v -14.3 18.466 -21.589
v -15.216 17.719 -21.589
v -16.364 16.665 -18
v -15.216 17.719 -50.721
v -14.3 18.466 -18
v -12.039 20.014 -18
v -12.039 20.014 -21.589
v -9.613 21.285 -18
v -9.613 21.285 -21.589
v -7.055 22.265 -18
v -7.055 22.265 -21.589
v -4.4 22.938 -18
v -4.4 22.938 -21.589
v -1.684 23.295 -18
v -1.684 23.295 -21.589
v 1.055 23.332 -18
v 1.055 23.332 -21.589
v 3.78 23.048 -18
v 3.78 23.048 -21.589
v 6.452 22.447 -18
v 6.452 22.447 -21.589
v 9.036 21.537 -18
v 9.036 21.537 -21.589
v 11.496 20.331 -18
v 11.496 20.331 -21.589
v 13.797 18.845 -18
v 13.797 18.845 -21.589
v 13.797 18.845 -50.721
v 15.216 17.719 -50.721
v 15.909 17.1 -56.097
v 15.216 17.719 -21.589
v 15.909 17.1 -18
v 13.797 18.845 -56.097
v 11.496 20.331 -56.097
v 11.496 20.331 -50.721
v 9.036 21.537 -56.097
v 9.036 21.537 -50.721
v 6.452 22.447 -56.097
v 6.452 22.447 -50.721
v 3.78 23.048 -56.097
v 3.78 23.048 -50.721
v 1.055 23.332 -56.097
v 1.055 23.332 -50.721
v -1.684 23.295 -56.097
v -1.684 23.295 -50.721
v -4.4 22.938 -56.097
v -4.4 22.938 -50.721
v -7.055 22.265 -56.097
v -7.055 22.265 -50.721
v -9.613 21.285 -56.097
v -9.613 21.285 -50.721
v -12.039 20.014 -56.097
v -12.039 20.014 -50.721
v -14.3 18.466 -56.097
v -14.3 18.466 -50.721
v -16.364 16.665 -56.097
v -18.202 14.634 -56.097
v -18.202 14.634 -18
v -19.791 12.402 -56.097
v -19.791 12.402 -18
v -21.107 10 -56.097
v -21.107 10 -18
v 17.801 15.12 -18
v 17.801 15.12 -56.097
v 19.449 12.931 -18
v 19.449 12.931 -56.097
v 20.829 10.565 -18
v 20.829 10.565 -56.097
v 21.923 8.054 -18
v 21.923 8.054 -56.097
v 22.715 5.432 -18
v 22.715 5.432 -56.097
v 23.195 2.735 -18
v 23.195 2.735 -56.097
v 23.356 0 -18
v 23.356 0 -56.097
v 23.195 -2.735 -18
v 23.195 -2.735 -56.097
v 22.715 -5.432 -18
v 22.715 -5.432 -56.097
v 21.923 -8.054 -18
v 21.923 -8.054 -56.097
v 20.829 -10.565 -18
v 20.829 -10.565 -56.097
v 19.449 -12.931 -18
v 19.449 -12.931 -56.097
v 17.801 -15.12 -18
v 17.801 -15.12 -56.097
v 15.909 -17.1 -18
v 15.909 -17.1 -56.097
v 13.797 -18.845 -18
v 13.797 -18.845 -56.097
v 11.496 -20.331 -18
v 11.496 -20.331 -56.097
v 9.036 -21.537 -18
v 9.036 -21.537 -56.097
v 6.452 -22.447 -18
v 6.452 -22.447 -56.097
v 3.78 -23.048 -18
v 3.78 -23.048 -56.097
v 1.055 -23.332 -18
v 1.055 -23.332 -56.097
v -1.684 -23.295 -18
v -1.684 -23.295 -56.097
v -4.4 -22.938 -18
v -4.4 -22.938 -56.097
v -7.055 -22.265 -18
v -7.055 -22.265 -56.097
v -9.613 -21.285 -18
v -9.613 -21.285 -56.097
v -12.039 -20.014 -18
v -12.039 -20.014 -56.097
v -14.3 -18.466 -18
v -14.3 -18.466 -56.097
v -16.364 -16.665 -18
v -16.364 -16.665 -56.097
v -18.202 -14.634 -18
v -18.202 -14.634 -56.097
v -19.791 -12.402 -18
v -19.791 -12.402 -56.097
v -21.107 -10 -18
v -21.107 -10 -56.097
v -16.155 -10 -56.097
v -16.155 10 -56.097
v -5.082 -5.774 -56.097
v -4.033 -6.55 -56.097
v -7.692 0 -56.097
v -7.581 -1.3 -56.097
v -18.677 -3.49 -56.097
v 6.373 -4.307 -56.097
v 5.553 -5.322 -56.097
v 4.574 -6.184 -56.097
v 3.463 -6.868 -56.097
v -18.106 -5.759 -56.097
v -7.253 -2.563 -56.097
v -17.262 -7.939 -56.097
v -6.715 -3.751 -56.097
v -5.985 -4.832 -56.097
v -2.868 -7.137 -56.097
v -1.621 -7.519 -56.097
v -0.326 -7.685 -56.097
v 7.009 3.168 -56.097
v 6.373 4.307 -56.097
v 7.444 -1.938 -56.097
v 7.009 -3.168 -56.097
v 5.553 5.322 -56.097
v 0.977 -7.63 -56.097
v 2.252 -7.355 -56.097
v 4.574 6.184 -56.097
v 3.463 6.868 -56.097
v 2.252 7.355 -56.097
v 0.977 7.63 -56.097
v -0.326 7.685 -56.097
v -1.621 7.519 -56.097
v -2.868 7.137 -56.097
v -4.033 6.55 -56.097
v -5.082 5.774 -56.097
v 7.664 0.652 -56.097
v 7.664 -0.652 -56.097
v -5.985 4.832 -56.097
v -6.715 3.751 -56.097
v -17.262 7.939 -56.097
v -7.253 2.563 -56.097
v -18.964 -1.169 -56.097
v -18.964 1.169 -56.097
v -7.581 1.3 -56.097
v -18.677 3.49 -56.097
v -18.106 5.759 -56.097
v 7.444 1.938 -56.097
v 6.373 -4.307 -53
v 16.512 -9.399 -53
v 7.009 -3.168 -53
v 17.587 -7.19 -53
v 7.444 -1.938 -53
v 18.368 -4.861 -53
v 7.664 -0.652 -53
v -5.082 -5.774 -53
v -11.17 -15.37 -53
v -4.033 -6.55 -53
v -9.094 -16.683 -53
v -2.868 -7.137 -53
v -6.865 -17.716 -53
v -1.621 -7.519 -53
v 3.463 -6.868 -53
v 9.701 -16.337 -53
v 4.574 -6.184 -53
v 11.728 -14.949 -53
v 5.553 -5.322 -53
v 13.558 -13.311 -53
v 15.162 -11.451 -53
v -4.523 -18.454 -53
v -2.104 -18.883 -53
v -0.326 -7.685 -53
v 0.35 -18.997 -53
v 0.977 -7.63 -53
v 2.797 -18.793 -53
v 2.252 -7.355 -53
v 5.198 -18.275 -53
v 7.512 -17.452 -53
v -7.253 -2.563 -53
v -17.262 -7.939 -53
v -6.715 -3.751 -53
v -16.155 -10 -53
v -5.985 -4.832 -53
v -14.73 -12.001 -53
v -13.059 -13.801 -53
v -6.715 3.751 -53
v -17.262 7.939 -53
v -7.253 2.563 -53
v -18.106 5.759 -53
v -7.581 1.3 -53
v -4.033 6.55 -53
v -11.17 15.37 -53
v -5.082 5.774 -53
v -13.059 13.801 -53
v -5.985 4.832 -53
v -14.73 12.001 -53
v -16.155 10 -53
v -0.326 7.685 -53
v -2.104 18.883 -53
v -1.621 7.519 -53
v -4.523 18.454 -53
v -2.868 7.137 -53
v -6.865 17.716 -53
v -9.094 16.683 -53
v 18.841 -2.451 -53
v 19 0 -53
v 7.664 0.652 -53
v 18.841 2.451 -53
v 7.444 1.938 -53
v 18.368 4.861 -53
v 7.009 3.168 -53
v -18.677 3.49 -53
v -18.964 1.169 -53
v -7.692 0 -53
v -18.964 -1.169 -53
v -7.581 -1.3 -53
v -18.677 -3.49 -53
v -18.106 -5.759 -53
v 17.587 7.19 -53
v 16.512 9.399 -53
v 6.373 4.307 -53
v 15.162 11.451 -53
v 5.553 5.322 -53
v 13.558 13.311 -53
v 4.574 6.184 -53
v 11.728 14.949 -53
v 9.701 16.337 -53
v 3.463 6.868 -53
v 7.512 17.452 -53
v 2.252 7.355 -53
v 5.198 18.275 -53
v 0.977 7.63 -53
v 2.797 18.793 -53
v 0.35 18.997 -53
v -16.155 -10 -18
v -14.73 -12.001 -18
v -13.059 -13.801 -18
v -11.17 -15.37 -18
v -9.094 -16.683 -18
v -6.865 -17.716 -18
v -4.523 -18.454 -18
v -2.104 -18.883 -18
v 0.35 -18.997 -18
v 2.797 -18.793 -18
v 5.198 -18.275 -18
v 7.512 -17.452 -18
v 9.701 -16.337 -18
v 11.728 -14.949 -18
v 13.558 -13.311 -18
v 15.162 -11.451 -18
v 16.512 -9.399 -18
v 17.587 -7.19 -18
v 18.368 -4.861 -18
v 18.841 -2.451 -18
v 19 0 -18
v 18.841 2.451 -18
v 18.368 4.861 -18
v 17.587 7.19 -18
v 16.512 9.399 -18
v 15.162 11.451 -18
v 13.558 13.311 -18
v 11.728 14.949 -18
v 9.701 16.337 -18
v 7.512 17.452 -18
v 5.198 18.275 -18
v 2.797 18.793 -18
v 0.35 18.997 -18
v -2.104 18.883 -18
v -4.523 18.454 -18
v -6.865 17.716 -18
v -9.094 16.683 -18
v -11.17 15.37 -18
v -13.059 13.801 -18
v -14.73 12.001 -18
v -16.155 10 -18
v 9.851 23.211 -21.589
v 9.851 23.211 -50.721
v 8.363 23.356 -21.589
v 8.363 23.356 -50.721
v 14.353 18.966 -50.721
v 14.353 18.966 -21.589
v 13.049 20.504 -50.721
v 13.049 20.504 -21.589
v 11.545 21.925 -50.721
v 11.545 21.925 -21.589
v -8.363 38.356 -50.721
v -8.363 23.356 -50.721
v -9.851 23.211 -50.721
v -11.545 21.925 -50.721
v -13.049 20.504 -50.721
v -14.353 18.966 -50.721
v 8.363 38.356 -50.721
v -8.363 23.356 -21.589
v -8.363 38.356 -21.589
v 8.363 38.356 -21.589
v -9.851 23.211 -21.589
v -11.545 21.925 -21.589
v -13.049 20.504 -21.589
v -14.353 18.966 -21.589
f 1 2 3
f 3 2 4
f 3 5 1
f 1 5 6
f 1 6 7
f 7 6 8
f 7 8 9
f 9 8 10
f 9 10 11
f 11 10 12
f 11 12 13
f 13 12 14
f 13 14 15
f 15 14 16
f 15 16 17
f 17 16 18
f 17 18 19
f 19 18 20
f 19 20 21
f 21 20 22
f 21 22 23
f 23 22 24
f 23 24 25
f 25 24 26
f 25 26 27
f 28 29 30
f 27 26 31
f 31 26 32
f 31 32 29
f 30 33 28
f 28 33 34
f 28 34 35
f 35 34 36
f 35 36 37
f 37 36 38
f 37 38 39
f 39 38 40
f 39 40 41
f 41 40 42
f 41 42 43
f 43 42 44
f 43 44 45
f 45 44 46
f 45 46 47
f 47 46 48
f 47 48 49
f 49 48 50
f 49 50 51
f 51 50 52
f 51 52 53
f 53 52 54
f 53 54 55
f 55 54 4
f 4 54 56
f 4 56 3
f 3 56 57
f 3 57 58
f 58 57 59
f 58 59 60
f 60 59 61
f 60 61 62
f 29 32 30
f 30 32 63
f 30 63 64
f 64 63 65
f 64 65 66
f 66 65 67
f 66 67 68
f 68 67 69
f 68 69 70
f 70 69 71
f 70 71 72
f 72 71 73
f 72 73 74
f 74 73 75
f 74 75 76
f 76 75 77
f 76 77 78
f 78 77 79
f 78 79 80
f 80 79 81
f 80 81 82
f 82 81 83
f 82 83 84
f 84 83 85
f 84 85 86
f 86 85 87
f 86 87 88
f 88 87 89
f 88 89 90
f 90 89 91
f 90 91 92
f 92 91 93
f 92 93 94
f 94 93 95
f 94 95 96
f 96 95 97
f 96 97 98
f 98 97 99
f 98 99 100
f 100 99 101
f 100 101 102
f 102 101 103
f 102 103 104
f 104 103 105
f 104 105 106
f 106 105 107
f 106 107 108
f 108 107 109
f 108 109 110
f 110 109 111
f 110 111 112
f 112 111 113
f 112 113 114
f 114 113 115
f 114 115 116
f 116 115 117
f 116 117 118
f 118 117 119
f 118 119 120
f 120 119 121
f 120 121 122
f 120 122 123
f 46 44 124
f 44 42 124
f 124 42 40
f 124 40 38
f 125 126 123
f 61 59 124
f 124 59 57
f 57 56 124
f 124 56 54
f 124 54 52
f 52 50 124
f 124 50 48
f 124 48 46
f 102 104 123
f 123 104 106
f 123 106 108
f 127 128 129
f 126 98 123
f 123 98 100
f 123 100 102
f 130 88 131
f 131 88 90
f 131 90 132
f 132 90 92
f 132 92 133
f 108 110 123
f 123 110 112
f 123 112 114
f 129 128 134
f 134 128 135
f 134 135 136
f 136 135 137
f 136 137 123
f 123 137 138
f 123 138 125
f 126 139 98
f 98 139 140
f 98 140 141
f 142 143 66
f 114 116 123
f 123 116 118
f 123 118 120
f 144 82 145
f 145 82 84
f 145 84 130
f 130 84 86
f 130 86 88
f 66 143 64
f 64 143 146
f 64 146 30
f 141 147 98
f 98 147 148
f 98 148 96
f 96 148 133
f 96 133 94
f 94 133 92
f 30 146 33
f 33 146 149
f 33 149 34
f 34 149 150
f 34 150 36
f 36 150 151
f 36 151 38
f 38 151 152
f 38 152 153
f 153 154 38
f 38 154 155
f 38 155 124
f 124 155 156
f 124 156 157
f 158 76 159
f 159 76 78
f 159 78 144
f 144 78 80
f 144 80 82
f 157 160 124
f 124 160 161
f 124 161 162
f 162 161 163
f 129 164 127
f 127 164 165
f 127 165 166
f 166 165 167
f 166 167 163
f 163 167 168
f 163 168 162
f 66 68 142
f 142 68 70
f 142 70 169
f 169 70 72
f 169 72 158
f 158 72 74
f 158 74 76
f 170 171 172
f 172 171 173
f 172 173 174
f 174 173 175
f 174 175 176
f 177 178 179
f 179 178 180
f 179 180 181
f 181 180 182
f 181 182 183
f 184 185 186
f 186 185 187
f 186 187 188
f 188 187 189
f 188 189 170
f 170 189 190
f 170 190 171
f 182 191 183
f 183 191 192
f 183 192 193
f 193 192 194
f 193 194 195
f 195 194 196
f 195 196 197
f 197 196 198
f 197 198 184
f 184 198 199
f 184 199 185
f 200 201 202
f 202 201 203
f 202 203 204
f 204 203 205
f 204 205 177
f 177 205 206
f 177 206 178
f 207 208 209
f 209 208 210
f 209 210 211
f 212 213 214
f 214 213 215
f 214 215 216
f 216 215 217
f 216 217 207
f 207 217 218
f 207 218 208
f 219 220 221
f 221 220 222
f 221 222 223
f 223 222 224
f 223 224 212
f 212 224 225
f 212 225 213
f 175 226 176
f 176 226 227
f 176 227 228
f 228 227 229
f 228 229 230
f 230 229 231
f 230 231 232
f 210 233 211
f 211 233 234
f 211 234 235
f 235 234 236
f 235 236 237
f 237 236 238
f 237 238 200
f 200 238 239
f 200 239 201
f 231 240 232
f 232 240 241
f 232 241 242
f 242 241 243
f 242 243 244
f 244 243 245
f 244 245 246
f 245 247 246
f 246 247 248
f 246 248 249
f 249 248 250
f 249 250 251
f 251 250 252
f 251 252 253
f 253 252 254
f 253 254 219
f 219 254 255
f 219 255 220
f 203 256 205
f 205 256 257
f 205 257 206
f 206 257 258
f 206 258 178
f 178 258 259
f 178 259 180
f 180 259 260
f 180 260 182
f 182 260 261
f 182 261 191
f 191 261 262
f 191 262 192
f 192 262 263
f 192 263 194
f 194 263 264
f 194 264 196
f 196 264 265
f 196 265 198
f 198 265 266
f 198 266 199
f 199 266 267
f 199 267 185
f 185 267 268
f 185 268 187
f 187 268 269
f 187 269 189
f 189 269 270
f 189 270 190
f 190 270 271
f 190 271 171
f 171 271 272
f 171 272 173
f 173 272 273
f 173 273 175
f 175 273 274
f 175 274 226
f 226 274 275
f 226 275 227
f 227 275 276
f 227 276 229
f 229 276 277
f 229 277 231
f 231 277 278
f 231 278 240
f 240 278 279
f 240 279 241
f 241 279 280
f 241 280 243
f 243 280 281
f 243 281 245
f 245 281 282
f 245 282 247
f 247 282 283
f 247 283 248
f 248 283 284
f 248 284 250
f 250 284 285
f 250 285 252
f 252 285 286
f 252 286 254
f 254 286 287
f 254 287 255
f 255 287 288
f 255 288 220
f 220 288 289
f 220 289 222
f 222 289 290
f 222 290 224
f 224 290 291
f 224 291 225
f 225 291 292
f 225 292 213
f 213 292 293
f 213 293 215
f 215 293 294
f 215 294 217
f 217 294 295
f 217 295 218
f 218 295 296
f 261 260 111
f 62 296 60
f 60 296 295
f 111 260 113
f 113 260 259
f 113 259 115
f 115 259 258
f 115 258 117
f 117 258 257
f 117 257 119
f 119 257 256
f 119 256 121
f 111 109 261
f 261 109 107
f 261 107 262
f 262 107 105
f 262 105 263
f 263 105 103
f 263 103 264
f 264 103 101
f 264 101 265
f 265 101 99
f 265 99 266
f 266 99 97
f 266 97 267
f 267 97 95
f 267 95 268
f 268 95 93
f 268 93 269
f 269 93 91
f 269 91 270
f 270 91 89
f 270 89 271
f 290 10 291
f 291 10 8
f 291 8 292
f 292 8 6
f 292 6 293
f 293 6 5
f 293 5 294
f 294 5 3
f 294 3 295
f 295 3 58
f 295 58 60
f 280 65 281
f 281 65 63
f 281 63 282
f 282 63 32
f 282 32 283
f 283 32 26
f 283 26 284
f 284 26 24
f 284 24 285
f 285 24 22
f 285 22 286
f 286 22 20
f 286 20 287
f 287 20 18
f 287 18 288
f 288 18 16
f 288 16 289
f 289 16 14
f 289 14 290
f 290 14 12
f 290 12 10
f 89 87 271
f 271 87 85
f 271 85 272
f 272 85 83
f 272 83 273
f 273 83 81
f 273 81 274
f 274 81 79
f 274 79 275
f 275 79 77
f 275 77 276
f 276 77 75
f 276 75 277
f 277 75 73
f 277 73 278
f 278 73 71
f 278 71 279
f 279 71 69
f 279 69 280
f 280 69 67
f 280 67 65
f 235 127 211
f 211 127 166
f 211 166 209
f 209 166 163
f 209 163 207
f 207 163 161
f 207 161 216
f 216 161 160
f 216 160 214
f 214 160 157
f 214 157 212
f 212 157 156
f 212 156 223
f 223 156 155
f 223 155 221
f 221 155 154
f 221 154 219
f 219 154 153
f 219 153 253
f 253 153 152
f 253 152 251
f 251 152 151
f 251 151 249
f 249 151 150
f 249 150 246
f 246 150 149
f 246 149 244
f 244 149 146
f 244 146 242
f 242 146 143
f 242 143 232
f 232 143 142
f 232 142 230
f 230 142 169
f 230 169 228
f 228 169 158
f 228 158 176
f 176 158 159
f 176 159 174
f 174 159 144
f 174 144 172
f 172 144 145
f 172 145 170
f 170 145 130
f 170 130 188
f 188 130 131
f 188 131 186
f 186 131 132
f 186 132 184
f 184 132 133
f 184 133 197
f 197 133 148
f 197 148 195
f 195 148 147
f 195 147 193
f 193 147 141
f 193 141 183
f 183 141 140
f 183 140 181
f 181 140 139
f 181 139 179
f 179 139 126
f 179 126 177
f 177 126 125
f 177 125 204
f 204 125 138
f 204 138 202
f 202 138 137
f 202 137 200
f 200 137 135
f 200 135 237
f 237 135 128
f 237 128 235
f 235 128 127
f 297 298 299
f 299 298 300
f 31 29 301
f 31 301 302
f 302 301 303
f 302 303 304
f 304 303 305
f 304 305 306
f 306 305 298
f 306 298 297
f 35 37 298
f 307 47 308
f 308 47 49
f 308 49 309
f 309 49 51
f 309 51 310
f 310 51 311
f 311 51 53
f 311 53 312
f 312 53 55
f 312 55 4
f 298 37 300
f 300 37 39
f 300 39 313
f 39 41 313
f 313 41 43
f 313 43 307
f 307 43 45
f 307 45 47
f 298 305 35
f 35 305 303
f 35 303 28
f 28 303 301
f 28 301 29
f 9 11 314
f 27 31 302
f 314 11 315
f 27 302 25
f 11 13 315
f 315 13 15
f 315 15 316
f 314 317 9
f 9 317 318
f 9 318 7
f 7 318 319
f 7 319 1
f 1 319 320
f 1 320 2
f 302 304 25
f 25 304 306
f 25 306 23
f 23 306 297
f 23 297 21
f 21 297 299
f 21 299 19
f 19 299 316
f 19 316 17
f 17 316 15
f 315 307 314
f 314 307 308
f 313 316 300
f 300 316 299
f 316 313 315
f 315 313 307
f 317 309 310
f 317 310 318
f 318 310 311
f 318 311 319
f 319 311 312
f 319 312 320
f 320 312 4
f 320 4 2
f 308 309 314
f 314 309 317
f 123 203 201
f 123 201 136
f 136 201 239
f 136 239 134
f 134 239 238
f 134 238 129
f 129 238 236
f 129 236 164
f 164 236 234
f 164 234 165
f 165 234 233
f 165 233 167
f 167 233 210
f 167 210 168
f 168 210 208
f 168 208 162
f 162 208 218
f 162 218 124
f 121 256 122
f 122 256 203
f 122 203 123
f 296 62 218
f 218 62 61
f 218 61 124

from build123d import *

# Parameters (mm, degrees)
SKETCH2_R           = 7.692100041
CUT_EXTRUDE1_DEPTH  = 10
SKETCH4_W           = 16.725751486
SKETCH4_H           = 29.132579912
BOSS_EXTRUDE1_DEPTH = 15
BOSS_EXTRUDE2_START = -29.132579912
BOSS_EXTRUDE2_DEPTH = 29.132579912
CUT_EXTRUDE2_DEPTH  = 72.857514692


with BuildPart() as part:
    # Sketch1 → Revolve1 (revolve)
    with BuildSketch(Plane(origin=(0, 0, 0), x_dir=(0, 0, -1), z_dir=(1, 0, 0)), mode=Mode.PRIVATE) as revolve1_sk:
        Polygon((18, 19), (53, 19), (53, 0), (56.096816333, 0), (56.096816333, 23.355709418), (18, 23.355709418), align=None)
    revolve(revolve1_sk.sketch.rotate(Axis((0, 0, -53), (0, 0, -1)), 90), axis=Axis((0, 0, -53), (0, 0, -1)))

    # Sketch2 → Cut-Extrude1 (cut)
    with BuildSketch(Plane(origin=(0, 0, -56.096816333), x_dir=(-1, 0, 0), z_dir=(0, 0, -1))):
        Circle(SKETCH2_R)
    extrude(amount=-CUT_EXTRUDE1_DEPTH, mode=Mode.SUBTRACT)



with BuildPart() as body_2:
    # Sketch4 → Boss-Extrude1 (new body)
    with BuildSketch(Plane(origin=(0, 23.355709418, 0), x_dir=(1, 0, 0), z_dir=(0, 1, 0))):
        with Locations((0, 36.155071486)):
            Rectangle(SKETCH4_W, SKETCH4_H)
    extrude(amount=BOSS_EXTRUDE1_DEPTH)


with BuildPart() as part_1:
    add(part.part)

    add(body_2.part)  # Boss-Extrude2 merges body 2
    # Sketch5 → Boss-Extrude2 (add)
    with BuildSketch(Plane(origin=(0, 0, -50.721361442), x_dir=(-1, 0, 0), z_dir=(0, 0, -1)).offset(BOSS_EXTRUDE2_START)):
        with BuildLine():
            ThreePointArc((-15.215762233, 17.71919135), (-8.113102925, 21.901295016), (0, 23.355709418))
            Line((0, 23.355709418), (-8.362875743, 23.355709418))
            Line((-8.362875743, 23.355709418), (-9.850694039, 23.211289977))
            add(Edge.make_bspline(
                [(-9.850694039, 23.211289977), (-13.176863257, 20.945911476), (-15.215762233, 17.71919135)],
                knots=[0, 0, 0, 0.793491279, 0.793491279, 0.793491279], degree=2))
        make_face()
        with BuildLine():
            add(Edge.make_bspline(
                [(9.850694039, 23.211289977), (13.176863257, 20.945911476), (15.215762233, 17.71919135)],
                knots=[0, 0, 0, 0.793491279, 0.793491279, 0.793491279], degree=2))
            Line((9.850694039, 23.211289977), (8.362875743, 23.355709418))
            Line((8.362875743, 23.355709418), (0, 23.355709418))
            ThreePointArc((0, 23.355709418), (8.113102925, 21.901295016), (15.215762233, 17.71919135))
        make_face()
    extrude(amount=BOSS_EXTRUDE2_DEPTH)

    # Sketch6 → Cut-Extrude2 (cut, through all)
    with BuildSketch(Plane.XY):
        with BuildLine():
            Line((-16.155494421, -10), (-21.106614187, -10))
            ThreePointArc((-21.106614187, -10), (-23.355709418, 0), (-21.106614187, 10))
            Line((-21.106614187, 10), (-16.155494421, 10))
            ThreePointArc((-16.155494421, 10), (-19, 0), (-16.155494421, -10))
        make_face()
    extrude(amount=-CUT_EXTRUDE2_DEPTH, mode=Mode.SUBTRACT)


solid = part_1.part
